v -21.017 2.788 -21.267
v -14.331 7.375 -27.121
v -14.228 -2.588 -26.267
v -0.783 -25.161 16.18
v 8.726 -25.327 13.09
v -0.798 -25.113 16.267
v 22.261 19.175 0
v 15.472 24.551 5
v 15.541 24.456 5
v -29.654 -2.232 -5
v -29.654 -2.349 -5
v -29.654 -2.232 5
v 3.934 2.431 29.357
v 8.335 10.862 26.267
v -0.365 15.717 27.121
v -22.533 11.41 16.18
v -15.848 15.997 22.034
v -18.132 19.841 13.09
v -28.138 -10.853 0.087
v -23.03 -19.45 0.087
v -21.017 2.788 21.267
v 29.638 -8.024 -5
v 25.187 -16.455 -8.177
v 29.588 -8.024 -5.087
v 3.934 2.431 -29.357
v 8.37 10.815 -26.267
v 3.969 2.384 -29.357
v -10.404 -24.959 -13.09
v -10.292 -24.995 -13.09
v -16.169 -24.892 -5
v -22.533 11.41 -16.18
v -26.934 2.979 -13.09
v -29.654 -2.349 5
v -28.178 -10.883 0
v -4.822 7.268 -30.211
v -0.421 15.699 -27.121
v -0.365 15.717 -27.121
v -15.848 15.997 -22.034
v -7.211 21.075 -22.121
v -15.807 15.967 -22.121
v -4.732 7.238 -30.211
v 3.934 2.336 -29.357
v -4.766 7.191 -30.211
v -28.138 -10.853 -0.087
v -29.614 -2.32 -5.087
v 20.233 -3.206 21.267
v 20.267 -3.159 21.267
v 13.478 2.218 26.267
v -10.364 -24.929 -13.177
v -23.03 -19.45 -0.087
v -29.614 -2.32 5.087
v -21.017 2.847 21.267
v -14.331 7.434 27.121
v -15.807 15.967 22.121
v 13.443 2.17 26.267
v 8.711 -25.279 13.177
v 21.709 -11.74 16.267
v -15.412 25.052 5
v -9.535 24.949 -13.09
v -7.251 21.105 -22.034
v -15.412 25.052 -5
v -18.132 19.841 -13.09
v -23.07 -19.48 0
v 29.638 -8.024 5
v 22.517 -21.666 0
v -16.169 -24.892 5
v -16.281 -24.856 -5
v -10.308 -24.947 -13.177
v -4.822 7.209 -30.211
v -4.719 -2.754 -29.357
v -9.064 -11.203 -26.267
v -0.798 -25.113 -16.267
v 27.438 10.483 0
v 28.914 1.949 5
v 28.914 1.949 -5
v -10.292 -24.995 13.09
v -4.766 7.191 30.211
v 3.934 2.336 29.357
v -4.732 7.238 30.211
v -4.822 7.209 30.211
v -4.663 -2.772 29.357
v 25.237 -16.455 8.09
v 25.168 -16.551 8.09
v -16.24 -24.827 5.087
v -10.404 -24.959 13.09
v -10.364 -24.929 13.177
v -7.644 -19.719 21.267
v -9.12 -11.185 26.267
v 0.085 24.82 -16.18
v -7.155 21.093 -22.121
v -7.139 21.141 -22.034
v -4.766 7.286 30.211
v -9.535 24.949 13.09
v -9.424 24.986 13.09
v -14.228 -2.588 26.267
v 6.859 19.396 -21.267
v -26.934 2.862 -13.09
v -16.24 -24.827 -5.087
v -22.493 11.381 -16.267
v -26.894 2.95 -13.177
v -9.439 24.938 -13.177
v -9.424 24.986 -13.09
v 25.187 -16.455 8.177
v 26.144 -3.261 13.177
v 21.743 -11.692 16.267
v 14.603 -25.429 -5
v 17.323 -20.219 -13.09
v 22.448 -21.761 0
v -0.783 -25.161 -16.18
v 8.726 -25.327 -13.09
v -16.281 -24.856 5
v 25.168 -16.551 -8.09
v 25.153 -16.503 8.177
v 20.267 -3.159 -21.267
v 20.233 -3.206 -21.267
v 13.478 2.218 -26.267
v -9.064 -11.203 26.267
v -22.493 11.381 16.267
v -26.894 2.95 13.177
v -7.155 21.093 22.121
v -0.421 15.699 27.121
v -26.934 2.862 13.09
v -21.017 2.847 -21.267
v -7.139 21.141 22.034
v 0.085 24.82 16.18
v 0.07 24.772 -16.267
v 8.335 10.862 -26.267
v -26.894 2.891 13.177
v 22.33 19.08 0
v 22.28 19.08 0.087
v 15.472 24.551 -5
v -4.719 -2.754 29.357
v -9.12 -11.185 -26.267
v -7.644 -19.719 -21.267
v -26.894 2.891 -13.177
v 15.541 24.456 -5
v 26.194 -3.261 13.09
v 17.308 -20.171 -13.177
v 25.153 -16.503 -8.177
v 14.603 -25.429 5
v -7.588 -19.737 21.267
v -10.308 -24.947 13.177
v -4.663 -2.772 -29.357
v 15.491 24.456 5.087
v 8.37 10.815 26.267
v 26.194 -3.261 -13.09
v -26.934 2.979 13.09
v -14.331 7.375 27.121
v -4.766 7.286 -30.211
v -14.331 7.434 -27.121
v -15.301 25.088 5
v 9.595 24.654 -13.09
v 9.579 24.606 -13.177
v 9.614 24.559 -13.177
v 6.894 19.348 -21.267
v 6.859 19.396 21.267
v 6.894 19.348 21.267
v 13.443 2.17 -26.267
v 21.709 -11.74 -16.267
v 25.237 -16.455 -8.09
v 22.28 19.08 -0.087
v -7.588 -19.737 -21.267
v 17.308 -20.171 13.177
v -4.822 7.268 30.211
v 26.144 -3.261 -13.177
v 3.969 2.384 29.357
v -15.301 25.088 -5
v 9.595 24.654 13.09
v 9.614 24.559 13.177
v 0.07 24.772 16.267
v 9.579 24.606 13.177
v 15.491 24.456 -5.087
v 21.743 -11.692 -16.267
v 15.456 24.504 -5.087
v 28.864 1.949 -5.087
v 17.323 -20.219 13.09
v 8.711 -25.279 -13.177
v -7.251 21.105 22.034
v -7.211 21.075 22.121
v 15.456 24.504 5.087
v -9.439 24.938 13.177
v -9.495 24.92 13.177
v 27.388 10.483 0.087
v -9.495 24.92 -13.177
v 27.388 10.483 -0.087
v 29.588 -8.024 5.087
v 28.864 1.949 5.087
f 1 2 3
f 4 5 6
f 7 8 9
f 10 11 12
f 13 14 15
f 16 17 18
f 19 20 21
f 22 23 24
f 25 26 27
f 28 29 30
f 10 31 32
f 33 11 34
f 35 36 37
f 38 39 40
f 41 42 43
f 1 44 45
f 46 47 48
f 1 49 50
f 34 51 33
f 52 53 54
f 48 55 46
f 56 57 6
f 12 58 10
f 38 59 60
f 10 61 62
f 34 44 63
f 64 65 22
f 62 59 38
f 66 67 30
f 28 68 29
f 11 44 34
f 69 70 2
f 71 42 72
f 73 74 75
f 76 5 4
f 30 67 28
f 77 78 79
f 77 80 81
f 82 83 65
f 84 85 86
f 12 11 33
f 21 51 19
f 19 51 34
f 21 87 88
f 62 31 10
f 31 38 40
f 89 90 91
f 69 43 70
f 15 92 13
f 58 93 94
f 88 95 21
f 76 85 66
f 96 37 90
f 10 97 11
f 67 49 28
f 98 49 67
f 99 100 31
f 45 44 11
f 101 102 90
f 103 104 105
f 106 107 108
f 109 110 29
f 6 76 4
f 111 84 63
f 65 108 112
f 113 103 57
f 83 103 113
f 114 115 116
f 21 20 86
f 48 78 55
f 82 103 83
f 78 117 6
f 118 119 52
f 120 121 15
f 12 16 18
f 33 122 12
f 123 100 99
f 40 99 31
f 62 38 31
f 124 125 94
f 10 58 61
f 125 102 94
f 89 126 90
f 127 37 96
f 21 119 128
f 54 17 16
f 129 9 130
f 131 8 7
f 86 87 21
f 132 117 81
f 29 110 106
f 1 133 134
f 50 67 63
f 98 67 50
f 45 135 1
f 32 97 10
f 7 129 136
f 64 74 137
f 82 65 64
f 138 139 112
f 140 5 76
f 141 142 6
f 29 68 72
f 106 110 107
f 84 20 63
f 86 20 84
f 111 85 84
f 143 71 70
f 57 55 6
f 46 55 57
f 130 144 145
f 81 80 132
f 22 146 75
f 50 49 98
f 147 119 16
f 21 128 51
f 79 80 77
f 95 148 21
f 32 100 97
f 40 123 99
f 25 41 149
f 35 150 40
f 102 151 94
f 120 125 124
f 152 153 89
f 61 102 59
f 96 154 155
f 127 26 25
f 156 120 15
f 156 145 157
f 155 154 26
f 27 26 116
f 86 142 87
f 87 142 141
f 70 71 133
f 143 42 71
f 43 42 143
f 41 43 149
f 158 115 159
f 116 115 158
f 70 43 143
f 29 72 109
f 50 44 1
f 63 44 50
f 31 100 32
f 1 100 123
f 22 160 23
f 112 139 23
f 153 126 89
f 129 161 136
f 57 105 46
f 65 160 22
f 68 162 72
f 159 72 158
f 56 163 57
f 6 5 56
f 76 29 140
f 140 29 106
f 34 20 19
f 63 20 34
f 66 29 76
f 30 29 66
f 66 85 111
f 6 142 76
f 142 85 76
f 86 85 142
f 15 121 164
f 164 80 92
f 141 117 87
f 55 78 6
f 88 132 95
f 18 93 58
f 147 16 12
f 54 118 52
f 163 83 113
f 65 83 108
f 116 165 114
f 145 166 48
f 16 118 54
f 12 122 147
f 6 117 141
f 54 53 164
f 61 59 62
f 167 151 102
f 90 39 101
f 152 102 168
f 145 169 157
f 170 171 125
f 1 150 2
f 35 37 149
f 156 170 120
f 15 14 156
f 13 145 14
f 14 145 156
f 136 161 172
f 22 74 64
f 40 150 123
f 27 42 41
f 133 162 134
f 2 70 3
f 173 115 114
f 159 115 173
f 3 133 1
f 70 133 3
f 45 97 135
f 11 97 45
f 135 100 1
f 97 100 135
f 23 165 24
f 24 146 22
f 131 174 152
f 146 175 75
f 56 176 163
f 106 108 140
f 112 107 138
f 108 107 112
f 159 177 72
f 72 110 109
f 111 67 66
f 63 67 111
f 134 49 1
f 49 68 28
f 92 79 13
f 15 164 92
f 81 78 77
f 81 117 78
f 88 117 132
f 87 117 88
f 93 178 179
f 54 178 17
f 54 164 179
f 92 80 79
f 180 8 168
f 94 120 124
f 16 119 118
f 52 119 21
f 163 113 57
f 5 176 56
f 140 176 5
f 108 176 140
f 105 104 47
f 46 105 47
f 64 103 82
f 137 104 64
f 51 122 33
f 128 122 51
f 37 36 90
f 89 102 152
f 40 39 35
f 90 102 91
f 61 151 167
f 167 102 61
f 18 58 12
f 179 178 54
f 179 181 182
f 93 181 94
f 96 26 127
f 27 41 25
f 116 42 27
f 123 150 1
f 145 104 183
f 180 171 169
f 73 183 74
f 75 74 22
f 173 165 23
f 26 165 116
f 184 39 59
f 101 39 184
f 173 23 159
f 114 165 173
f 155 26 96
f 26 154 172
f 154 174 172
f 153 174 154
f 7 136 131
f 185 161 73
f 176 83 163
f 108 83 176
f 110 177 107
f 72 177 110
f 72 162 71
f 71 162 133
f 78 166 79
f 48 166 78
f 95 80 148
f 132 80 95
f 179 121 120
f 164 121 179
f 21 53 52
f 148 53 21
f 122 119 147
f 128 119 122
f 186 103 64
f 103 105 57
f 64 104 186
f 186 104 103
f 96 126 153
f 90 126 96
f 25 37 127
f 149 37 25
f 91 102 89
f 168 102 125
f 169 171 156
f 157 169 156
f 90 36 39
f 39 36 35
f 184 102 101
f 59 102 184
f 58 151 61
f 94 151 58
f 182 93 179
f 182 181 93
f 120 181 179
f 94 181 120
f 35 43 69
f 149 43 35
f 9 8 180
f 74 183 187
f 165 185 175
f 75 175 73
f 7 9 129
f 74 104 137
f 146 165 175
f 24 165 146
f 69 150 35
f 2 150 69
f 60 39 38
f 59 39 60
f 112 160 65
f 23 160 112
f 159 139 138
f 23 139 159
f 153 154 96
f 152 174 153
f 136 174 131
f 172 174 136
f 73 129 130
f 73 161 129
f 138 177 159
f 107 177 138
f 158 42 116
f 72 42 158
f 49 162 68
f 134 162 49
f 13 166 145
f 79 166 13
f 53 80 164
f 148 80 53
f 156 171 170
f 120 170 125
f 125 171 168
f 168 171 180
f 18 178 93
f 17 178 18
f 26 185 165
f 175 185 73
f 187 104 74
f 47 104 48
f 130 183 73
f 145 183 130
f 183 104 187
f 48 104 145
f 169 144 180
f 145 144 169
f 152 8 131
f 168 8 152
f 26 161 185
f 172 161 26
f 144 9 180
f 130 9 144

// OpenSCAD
// Auto-generated OpenSCAD file

    inner_points = 10*[[2.2229828118084516, 1.9079774760679746, 7.77589516412924e-13], [-2.809733759198869, -1.0823860047076879, -7.725143262255779e-13], [2.733797877554801, 1.0482868522930302, 7.725143262255779e-13], [-2.29891869345252, -1.9420766284826323, -7.77589516412924e-13], [0.3918773710660971, 0.23835795666625434, -2.92705098312471], [-0.46781325270884755, -0.2724571090800944, -2.9270509831249747], [0.3918773710647796, 0.23835795666543694, 2.9270509831249747], [-0.46781325271016505, -0.2724571090809118, 2.92705098312471], [-1.5331496812097525, 2.4993087092964017, -0.4999999999999851], [1.4572137995659098, -2.533407861710919, -0.5000000000000149], [-1.5331496812099776, 2.499308709296262, 0.5000000000000149], [1.4572137995656846, -2.533407861711059, 0.4999999999999851], [1.5440657299857556, 2.4456312643083966, -0.4999999999993001], [-2.957332815719052, -0.22903114387051052, -0.5000000000006866], [2.8813969340752084, 0.19493199145599246, -0.49999999999931344], [-1.6200016116295983, -2.479730416722914, -0.5000000000006999], [1.5440657299855305, 2.4456312643082567, 0.5000000000006999], [-2.9573328157192766, -0.22903114387064996, 0.49999999999931344], [2.8813969340749837, 0.19493199145585302, 0.5000000000006866], [-1.6200016116298235, -2.479730416723054, 0.4999999999993001], [0.8319741627315825, 1.0814613377252358, -2.618033988749546], [-1.4187251101208207, -0.2558698663642176, -2.618033988750239], [1.3427892284779315, 0.22177071395029133, -2.6180339887495507], [-0.907910044374472, -1.1155604901391623, -2.618033988750244], [0.8319741627304039, 1.0814613377245046, 2.618033988750244], [-1.4187251101219993, -0.2558698663649488, 2.6180339887495507], [1.3427892284767529, 0.22177071394956013, 2.618033988750239], [-0.9079100443756506, -1.1155604901398934, 2.618033988749546], [-0.9454538330237207, 2.489057229518432, -1.3090169943748018], [-1.805144456798665, 1.9782421637720828, -1.3090169943750665], [1.7292085751551864, -2.012341316186375, -1.3090169943748284], [0.8695179513802419, -2.523156381932724, -1.3090169943750931], [-0.94545383302431, 2.4890572295180666, 1.3090169943750931], [-1.8051444567992543, 1.9782421637717174, 1.3090169943748284], [1.7292085751545971, -2.0123413161867405, 1.3090169943750665], [0.8695179513796526, -2.5231563819330893, 1.3090169943748018], [0.9563698818000872, 2.455882744086592, -1.3090169943743784], [-2.6853380401297753, 0.29203540165403374, -1.3090169943755001], [2.6094021584862968, -0.3261345540683255, -1.3090169943743948], [-1.0323057634435657, -2.4899818965008835, -1.3090169943755166], [0.9563698817994977, 2.4558827440862263, 1.3090169943755166], [-2.685338040130365, 0.29203540165366804, 1.3090169943743948], [2.609402158485707, -0.3261345540686912, 1.3090169943755001], [-1.0323057634441553, -2.489981896501249, 1.3090169943743784], [0.6843751062111746, 1.9348161985622732, -2.1180339887494597], [-2.097642191943743, 0.28178392187606416, -2.118033988750317], [2.0217063103006283, -0.3158830742901302, -2.118033988749473], [-0.7603109878542894, -1.9689153509763393, -2.11803398875033], [0.6843751062102214, 1.9348161985616816, 2.11803398875033], [-2.0976421919446966, 0.28178392187547274, 2.118033988749473], [2.021706310299675, -0.3158830742907216, 2.118033988750317], [-0.7603109878552426, -1.9689153509769308, 2.1180339887494597], [0.005458024388253095, 2.472469986802555, -1.6180339887495376], [-2.245241248464151, 1.1351387827131016, -1.6180339887502309], [2.169305366820811, -1.1692379351273074, -1.618033988749559], [-0.08139390603159274, -2.5065691392167606, -1.6180339887502522], [0.005458024387524789, 2.4724699868021034, 1.6180339887502522], [-2.2452412484648794, 1.1351387827126498, 1.618033988749559], [2.169305366820083, -1.1692379351277593, 1.6180339887502309], [-0.08139390603232105, -2.5065691392172122, 1.6180339887495376], [-0.03809330901262526, 1.5669381064022805, -2.703444185374642], [-1.429101958090084, 0.7404219680591758, -2.7034441853750706], [-0.038093309013842065, 1.5669381064015255, 2.7034441853750844], [-1.4291019580913007, 0.7404219680584209, 2.703444185374656], [2.5137216919096725, -1.6455455015429499, -0.8090169943746006], [2.5137216919093084, -1.645545501543176, 0.8090169943752943], [-0.7170103908355473, 2.1045918946425624, -2.2034441853747198], [-1.5767010146104916, 1.5937768288962129, -2.2034441853749844], [-0.717010390836539, 2.1045918946419473, 2.2034441853750066], [-1.5767010146114833, 1.5937768288955976, 2.203444185374742], [2.9538184835751577, -0.8024421204839683, -0.4999999999994364], [2.9538184835749326, -0.802442120484108, 0.5000000000005637], [-0.4781901006781107, 0.723834725343299, -3.012461179749806], [-0.47819010067946655, 0.7238347253424577, 3.012461179749815], [2.241726916320396, -2.166612047067494, 2.129075466538872e-13]];

    outer_points = 10*[[0.4830693605864632, 0.897366776381505, -2.7890866460763384], [-0.40484035713075717, -1.786116072619009, 2.3374176174108023], [0.40484035713075717, 1.786116072619009, -2.3374176174108023], [-0.4830693605864632, -0.897366776381505, 2.7890866460763384], [2.9599481176661713, 0.22919679777286445, 0.061671925762529], [2.8082750305152753, -0.22919679777286445, 0.9373834000488804], [-2.8082750305152753, 0.22919679777286445, -0.9373834000488804], [-2.9599481176661713, -0.22919679777286445, -0.061671925762529], [0.7216453547367727, -2.601414501303498, -1.2367287625857242], [0.2636847917889711, 2.601414501303498, 1.4073877862192727], [-0.2636847917889711, -2.601414501303498, -1.4073877862192727], [-0.7216453547367727, 2.601414501303498, 1.2367287625857242], [0.9921534655790782, 0.03670208085032334, -2.7985553265591845], [0.19798287089973665, -2.363477945877658, 1.786729481480711], [0.7873472756260071, 2.363477945877658, -1.616070457847162], [-0.006823319053334498, -0.03670208085032334, 2.9692143501927335], [0.006823319053334498, 0.03670208085032334, -2.9692143501927335], [-0.7873472756260071, -2.363477945877658, 1.616070457847162], [-0.19798287089973665, 2.363477945877658, -1.786729481480711], [-0.9921534655790782, -0.03670208085032334, 2.7985553265591845], [2.817284964142, 0.15567035856324335, -0.9253645919832395], [2.420199666802329, -1.0444196548007474, 1.3672778120367086], [2.7390559606862936, 1.0444196548007474, -0.4736955633177039], [2.341970663346623, -0.15567035856324335, 1.8189468407022442], [-2.341970663346623, 0.15567035856324335, -1.8189468407022442], [-2.7390559606862936, -1.0444196548007474, 0.4736955633177039], [-2.420199666802329, 1.0444196548007474, -1.3672778120367086], [-2.817284964142, -0.15567035856324335, 0.9253645919832395], [1.5704566404006748, -2.09757906725447, -1.3969450436754474], [1.4187835532497788, -2.5559726628001993, -0.5212335693890959], [1.1608442604945326, 2.5559726628001993, 0.9680246937485981], [1.0091711733436366, 2.09757906725447, 1.8437361680349498], [-1.0091711733436366, -2.09757906725447, -1.8437361680349498], [-1.1608442604945326, -2.5559726628001993, -0.9680246937485981], [-1.4187835532497788, 2.5559726628001993, 0.5212335693890959], [-1.5704566404006748, 2.09757906725447, 1.3969450436754474], [1.7376398471337438, -0.4671333531987044, -2.362206944743508], [1.0951423396052982, -2.4089197843809567, 1.3473663890100358], [1.4844854741390132, 2.4089197843809567, -0.9005752646505334], [0.8419879666105676, 0.4671333531987044, 2.8089980691030103], [-0.8419879666105676, -0.4671333531987044, -2.8089980691030103], [-1.4844854741390132, -2.4089197843809567, 0.9005752646505334], [-1.0951423396052982, 2.4089197843809567, -1.3473663890100358], [-1.7376398471337438, 0.4671333531987044, 2.362206944743508], [2.43477804564675, -0.42169151469540556, -1.64671175154688], [1.9439536252692002, -1.9050843503319292, 1.187150107920313], [2.2299718556936785, 1.9050843503319292, -0.46422688283485714], [1.7391474353161291, 0.42169151469540556, 2.369634976632336], [-1.7391474353161291, -0.42169151469540556, -2.369634976632336], [-2.2299718556936785, -1.9050843503319292, 0.46422688283485714], [-1.9439536252692002, 1.9050843503319292, -1.187150107920313], [-2.43477804564675, 0.42169151469540556, 1.64671175154688], [1.9585320041136212, -1.282356210226587, -1.8268394556632752], [1.5614467067739504, -2.4824462235905775, 0.4658029483566726], [1.6271486276631848, 2.4824462235905775, 0.08646125309523445], [1.230063330323514, 1.282356210226587, 2.379103657115182], [-1.230063330323514, -1.282356210226587, -2.379103657115182], [-1.6271486276631848, -2.4824462235905775, -0.08646125309523445], [-1.5614467067739504, 2.4824462235905775, -0.4658029483566726], [-1.9585320041136212, 1.282356210226587, 1.8268394556632752], [2.893023683190555, -0.839453603454857, -0.8621827381462208], [2.6476114730017803, -1.5811500212731189, 0.5547481915873755], [-2.4345464274086126, -0.839453603454857, -1.7849170283939584], [-2.6799586375973874, -1.5811500212731189, -0.36798609866036214], [0.7922100146892382, 3.026926073605983, 0.16658119750574993], [-0.8020876525293293, 3.026926073605983, -0.10955090322020358], [2.4167776416574265, -1.7001182989860388, -1.0423104422626164], [2.26510455450653, -2.1585118945317676, -0.166598967976265], [-1.9254623224159977, -1.7001182989860388, -1.7943857088768054], [-2.077135409566894, -2.1585118945317676, -0.9186742345904539], [0.6495468611650667, 2.9533996343963618, -0.8204553202400185], [-0.33578328536067714, 2.9533996343963618, -0.9911143438735673], [3.0356868367147265, -0.7659271642452358, 0.12485377959954758], [-2.900850794577265, -0.7659271642452358, -0.9033535877405948], [-0.10494945401632327, 3.0723679121092817, 0.6059442899764248]];

    // Convex hull for inner set (I)
    module inner_hull() {
        hull() {
            for (p = inner_points) {
                translate(p) sphere(r=0.1);
            }
        }
    }

    // Convex hull for outer set (O) minus inner hull (O \ I)
    module outer_minus_inner() {
        difference() {
            hull() {
                for (p = outer_points) {
                    translate(p) sphere(r=0.1);
                }
            }
            inner_hull(); // Subtract inner hull
        }
    }

    // Convex hull for outer set (O) minus all translated inner hulls
    module outer_minus_AllTranslationInner() {
        difference() {
            hull() {
                for (p = outer_points) {
                    translate(p) sphere(r=0.1);
                }
            }
            hull() {
                translate([0,0,50]) inner_hull();
                translate([0,0,-50]) inner_hull();
            }; // Subtract translated inner hulls
        }
    }

    // Difference between outer_minus_inner and outer_minus_AllTranslationInner
    module outer_minus_inner_diff() {
        difference() {
            // Outer minus inner
            difference() {
                hull() {
                    for (p = outer_points) {
                        translate(p) sphere(r=0.1);
                    }
                }
                inner_hull();
            }

            // Subtract Outer minus AllTranslationInner
            difference() {
                hull() {
                    for (p = outer_points) {
                        translate(p) sphere(r=0.1);
                    }
                }
                hull() {
                    translate([0,0,50]) inner_hull();
                    translate([0,0,-50]) inner_hull();
                };
            }
        }
    }

    // Rendering all with colors applied
    color([1, 0, 0, 0.5]) inner_hull(); // Transparent red
    
